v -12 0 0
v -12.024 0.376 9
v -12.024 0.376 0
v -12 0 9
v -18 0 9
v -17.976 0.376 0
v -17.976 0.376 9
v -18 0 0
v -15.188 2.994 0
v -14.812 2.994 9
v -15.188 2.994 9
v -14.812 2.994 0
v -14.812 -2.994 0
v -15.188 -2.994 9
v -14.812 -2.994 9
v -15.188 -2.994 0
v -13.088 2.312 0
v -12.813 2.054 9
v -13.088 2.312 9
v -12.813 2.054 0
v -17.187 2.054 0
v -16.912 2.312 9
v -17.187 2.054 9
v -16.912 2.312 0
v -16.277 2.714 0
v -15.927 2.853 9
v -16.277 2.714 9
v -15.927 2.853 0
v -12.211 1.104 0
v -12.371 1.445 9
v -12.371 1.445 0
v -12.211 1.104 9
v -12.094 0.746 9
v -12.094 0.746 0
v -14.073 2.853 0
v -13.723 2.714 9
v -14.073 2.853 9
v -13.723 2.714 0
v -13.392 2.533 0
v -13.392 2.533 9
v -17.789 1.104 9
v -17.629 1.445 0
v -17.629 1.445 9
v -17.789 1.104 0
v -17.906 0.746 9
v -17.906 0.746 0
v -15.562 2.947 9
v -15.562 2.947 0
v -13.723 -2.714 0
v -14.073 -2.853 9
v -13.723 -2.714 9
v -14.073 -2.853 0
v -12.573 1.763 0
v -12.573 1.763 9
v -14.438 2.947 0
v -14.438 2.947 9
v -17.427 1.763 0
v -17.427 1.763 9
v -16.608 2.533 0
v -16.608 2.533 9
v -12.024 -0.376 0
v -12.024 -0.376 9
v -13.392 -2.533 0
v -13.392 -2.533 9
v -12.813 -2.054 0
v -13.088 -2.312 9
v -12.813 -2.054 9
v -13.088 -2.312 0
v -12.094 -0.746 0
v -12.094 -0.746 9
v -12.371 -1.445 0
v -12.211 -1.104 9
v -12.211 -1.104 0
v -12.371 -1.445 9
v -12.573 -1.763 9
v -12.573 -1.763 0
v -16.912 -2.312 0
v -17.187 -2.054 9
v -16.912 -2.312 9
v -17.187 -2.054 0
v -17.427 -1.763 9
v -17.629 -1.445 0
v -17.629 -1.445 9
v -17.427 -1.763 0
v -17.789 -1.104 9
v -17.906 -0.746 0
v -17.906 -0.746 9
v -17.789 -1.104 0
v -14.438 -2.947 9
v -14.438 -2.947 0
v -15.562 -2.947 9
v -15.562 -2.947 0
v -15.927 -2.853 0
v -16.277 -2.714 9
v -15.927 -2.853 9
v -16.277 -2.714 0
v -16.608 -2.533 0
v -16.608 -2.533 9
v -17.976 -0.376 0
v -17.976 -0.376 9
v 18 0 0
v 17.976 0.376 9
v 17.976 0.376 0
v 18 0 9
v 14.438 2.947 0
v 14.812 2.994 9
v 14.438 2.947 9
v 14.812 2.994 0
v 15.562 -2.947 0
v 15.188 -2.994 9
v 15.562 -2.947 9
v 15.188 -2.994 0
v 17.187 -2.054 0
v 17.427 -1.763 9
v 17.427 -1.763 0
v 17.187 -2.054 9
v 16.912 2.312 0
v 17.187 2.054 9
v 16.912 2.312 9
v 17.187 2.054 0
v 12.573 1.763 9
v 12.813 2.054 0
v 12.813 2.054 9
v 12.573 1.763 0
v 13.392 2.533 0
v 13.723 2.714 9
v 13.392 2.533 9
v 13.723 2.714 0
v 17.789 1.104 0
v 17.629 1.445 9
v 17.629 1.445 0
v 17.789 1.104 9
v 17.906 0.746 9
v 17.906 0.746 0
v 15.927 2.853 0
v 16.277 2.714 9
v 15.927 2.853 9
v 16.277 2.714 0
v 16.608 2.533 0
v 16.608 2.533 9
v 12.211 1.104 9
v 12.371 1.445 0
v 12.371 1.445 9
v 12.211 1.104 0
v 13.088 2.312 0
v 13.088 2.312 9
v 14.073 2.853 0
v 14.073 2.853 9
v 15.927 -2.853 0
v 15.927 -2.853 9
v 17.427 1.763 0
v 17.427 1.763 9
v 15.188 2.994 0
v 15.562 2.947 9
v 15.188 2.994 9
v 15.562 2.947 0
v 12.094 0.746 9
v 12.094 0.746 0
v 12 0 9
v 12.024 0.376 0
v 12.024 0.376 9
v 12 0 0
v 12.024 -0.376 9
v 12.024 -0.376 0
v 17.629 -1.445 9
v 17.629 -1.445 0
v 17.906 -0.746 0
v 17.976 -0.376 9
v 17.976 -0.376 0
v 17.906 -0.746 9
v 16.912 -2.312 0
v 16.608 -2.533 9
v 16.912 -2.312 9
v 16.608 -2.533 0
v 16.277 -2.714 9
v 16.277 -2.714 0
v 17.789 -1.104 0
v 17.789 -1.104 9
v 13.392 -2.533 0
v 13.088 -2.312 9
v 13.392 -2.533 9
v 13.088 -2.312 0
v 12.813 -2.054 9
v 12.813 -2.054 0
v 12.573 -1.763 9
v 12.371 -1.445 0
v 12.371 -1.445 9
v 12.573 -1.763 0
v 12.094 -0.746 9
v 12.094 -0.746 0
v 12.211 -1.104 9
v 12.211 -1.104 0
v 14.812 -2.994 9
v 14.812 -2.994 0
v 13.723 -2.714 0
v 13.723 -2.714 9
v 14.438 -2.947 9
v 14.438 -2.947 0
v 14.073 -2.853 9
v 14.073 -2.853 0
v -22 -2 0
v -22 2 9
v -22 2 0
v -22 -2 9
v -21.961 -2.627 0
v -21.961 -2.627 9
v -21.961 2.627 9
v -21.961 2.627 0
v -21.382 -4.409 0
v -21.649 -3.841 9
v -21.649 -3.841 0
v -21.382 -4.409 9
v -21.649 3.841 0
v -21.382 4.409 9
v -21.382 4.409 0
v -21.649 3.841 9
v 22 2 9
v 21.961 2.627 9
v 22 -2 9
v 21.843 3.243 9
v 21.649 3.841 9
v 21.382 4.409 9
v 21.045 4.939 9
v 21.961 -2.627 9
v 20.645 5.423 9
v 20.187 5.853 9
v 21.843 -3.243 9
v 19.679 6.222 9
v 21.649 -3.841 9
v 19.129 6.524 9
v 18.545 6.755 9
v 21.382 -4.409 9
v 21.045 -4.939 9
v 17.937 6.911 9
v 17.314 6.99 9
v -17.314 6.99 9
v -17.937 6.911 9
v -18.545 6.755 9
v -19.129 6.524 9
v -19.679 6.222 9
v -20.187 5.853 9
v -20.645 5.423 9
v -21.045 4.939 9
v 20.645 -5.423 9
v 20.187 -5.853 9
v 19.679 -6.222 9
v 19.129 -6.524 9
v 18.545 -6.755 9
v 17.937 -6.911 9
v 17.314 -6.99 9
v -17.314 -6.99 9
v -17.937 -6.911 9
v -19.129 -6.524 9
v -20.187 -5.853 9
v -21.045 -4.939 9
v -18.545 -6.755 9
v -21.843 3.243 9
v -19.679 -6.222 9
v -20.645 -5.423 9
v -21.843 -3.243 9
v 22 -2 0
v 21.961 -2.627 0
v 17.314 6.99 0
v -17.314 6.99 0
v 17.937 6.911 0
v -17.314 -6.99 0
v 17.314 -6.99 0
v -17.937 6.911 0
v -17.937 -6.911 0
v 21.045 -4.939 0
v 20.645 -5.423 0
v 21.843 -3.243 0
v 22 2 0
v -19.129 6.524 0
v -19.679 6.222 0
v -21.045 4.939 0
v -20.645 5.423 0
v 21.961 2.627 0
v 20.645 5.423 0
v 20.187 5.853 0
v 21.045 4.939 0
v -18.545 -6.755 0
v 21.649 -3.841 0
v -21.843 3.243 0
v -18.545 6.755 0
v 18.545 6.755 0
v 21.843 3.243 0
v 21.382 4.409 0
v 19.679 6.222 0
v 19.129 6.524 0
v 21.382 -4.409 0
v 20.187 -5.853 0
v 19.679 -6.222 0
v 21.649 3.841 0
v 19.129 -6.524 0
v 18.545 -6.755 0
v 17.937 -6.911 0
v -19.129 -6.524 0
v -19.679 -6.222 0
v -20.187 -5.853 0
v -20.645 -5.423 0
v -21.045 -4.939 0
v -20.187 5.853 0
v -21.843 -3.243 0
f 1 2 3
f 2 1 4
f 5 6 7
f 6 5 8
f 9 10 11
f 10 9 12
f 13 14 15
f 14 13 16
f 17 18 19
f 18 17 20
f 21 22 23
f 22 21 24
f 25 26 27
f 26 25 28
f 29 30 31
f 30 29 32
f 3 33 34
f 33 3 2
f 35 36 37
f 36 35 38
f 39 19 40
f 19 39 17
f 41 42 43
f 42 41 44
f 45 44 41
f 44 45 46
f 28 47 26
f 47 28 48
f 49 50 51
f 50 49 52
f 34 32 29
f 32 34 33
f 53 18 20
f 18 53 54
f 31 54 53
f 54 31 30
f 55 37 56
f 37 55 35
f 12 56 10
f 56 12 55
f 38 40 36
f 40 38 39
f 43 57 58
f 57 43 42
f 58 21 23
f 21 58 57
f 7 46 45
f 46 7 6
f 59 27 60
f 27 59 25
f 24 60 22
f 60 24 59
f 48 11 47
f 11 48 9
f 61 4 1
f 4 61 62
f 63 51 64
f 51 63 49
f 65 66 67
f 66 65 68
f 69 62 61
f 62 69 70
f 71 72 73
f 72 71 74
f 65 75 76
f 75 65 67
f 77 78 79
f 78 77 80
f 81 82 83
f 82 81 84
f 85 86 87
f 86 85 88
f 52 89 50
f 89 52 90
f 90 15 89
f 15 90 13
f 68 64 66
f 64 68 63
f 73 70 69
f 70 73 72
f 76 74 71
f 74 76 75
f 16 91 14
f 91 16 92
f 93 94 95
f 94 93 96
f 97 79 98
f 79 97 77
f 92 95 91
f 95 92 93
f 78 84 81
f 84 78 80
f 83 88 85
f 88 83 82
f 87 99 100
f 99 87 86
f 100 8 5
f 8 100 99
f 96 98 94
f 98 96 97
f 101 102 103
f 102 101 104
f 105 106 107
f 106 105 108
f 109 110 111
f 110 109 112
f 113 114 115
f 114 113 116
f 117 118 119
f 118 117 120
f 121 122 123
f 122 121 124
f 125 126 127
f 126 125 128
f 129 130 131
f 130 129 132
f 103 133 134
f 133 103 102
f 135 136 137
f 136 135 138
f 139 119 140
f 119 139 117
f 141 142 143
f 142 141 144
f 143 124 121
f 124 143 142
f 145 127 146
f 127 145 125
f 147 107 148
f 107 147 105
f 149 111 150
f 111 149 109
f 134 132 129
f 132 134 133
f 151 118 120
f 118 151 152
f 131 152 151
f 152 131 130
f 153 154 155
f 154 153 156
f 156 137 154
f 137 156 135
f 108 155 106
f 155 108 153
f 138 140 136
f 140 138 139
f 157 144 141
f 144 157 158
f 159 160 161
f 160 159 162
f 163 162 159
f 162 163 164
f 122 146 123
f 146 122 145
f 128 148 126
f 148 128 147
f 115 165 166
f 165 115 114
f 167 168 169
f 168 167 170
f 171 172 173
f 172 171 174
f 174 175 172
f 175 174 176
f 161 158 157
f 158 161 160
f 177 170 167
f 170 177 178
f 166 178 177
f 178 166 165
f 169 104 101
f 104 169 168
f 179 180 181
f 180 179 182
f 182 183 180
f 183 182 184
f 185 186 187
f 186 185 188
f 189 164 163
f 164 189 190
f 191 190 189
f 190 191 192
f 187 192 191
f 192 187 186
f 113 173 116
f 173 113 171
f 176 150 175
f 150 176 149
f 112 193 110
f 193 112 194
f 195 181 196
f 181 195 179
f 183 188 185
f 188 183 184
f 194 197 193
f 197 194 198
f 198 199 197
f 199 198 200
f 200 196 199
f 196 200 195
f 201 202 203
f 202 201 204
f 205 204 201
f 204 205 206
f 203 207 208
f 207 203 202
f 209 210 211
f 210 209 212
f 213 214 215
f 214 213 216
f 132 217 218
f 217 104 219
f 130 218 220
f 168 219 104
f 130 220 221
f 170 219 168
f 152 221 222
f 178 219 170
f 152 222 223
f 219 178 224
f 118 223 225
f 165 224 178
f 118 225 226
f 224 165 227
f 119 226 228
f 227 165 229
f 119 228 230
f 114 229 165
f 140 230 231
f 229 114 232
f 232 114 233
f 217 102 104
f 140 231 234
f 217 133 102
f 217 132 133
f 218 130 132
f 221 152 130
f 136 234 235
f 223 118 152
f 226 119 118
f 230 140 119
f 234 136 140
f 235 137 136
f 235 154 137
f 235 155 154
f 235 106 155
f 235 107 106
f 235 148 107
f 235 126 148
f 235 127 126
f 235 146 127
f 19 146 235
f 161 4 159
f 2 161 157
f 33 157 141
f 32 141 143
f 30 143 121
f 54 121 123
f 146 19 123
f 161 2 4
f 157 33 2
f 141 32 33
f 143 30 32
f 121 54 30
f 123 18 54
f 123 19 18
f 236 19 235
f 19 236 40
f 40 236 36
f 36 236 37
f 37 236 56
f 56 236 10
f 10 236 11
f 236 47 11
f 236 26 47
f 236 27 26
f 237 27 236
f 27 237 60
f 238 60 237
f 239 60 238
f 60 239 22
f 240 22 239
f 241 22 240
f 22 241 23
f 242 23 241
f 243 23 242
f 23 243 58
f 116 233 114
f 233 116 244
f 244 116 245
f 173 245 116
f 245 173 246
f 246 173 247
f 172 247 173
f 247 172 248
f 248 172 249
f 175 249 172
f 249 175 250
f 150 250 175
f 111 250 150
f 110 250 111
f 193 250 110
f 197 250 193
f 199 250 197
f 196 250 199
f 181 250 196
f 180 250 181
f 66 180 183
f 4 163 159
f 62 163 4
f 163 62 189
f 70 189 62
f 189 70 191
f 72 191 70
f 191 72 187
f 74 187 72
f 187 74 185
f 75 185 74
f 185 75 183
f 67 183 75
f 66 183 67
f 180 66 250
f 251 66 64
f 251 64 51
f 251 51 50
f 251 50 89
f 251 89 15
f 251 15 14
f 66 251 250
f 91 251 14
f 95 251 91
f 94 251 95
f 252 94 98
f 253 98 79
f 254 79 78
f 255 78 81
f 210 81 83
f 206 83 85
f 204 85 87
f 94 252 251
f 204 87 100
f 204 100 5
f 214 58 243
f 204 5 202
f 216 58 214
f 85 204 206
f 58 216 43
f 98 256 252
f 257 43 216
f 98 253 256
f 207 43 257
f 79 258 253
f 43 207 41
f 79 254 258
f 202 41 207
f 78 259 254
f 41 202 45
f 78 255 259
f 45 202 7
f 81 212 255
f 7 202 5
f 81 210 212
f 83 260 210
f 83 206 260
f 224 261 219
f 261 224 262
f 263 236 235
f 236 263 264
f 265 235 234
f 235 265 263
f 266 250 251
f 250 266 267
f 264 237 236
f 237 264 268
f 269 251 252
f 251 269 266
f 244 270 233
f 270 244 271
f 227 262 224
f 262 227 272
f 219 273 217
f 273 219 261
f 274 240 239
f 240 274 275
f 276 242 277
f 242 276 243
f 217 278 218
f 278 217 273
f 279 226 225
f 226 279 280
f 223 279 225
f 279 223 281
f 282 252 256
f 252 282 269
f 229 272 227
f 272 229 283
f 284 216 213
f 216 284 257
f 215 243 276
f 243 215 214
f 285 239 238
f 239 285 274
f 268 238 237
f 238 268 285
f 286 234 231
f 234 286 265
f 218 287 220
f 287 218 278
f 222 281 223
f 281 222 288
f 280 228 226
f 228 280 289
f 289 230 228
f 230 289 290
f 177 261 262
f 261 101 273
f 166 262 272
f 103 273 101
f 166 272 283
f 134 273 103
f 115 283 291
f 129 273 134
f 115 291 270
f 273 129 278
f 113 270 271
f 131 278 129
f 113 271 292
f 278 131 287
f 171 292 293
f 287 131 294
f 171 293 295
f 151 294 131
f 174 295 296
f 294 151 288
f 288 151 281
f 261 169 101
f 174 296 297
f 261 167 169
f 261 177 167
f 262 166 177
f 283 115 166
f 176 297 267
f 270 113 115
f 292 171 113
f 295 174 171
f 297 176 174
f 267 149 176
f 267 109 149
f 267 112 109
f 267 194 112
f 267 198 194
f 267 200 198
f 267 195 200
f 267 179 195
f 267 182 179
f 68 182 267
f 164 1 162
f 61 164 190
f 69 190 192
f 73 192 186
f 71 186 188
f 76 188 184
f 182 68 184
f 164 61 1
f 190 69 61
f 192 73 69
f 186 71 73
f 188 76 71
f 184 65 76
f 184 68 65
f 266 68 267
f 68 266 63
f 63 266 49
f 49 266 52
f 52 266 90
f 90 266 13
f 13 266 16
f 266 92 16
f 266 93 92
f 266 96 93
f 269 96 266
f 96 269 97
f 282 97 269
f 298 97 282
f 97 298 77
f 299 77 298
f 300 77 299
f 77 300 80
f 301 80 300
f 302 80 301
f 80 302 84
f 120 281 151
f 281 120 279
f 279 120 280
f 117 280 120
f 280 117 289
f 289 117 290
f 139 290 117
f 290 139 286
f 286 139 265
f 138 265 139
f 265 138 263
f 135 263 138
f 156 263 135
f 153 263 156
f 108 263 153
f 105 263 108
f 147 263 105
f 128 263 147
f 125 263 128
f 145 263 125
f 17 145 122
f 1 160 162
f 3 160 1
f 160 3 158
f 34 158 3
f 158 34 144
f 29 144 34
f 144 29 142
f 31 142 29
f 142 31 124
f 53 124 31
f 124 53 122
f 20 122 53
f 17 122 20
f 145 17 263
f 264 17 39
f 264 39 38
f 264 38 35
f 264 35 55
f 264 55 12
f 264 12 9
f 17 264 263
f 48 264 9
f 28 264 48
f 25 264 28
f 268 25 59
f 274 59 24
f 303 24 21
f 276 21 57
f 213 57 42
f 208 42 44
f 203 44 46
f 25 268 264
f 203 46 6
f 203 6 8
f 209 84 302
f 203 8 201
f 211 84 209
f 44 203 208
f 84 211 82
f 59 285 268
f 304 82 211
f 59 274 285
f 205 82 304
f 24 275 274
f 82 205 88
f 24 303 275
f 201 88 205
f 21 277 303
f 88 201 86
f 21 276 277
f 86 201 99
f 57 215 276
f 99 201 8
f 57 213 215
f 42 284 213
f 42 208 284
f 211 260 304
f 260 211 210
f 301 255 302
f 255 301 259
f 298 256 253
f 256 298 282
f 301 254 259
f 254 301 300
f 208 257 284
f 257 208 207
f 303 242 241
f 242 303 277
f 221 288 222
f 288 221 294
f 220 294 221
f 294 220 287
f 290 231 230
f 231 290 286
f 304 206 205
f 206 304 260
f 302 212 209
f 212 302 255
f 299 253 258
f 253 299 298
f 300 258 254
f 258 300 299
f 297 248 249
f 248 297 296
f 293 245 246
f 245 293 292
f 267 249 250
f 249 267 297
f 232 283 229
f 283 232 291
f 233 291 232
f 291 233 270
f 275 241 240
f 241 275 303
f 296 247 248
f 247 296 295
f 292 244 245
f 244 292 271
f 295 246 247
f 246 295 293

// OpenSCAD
$fn = 50;


difference() {
	union() {
		hull() {
			translate(v = [-17.0000000000, 2.0000000000, 0]) {
				cylinder(h = 9, r = 5);
			}
			translate(v = [17.0000000000, 2.0000000000, 0]) {
				cylinder(h = 9, r = 5);
			}
			translate(v = [-17.0000000000, -2.0000000000, 0]) {
				cylinder(h = 9, r = 5);
			}
			translate(v = [17.0000000000, -2.0000000000, 0]) {
				cylinder(h = 9, r = 5);
			}
		}
	}
	union() {
		translate(v = [-15.0000000000, 0.0000000000, -100.0000000000]) {
			cylinder(h = 200, r = 3.0000000000);
		}
		translate(v = [-15.0000000000, 0.0000000000, -100.0000000000]) {
			cylinder(h = 200, r = 3.0000000000);
		}
		translate(v = [15.0000000000, 0.0000000000, -100.0000000000]) {
			cylinder(h = 200, r = 3.0000000000);
		}
		translate(v = [15.0000000000, 0.0000000000, -100.0000000000]) {
			cylinder(h = 200, r = 3.0000000000);
		}
	}
}
